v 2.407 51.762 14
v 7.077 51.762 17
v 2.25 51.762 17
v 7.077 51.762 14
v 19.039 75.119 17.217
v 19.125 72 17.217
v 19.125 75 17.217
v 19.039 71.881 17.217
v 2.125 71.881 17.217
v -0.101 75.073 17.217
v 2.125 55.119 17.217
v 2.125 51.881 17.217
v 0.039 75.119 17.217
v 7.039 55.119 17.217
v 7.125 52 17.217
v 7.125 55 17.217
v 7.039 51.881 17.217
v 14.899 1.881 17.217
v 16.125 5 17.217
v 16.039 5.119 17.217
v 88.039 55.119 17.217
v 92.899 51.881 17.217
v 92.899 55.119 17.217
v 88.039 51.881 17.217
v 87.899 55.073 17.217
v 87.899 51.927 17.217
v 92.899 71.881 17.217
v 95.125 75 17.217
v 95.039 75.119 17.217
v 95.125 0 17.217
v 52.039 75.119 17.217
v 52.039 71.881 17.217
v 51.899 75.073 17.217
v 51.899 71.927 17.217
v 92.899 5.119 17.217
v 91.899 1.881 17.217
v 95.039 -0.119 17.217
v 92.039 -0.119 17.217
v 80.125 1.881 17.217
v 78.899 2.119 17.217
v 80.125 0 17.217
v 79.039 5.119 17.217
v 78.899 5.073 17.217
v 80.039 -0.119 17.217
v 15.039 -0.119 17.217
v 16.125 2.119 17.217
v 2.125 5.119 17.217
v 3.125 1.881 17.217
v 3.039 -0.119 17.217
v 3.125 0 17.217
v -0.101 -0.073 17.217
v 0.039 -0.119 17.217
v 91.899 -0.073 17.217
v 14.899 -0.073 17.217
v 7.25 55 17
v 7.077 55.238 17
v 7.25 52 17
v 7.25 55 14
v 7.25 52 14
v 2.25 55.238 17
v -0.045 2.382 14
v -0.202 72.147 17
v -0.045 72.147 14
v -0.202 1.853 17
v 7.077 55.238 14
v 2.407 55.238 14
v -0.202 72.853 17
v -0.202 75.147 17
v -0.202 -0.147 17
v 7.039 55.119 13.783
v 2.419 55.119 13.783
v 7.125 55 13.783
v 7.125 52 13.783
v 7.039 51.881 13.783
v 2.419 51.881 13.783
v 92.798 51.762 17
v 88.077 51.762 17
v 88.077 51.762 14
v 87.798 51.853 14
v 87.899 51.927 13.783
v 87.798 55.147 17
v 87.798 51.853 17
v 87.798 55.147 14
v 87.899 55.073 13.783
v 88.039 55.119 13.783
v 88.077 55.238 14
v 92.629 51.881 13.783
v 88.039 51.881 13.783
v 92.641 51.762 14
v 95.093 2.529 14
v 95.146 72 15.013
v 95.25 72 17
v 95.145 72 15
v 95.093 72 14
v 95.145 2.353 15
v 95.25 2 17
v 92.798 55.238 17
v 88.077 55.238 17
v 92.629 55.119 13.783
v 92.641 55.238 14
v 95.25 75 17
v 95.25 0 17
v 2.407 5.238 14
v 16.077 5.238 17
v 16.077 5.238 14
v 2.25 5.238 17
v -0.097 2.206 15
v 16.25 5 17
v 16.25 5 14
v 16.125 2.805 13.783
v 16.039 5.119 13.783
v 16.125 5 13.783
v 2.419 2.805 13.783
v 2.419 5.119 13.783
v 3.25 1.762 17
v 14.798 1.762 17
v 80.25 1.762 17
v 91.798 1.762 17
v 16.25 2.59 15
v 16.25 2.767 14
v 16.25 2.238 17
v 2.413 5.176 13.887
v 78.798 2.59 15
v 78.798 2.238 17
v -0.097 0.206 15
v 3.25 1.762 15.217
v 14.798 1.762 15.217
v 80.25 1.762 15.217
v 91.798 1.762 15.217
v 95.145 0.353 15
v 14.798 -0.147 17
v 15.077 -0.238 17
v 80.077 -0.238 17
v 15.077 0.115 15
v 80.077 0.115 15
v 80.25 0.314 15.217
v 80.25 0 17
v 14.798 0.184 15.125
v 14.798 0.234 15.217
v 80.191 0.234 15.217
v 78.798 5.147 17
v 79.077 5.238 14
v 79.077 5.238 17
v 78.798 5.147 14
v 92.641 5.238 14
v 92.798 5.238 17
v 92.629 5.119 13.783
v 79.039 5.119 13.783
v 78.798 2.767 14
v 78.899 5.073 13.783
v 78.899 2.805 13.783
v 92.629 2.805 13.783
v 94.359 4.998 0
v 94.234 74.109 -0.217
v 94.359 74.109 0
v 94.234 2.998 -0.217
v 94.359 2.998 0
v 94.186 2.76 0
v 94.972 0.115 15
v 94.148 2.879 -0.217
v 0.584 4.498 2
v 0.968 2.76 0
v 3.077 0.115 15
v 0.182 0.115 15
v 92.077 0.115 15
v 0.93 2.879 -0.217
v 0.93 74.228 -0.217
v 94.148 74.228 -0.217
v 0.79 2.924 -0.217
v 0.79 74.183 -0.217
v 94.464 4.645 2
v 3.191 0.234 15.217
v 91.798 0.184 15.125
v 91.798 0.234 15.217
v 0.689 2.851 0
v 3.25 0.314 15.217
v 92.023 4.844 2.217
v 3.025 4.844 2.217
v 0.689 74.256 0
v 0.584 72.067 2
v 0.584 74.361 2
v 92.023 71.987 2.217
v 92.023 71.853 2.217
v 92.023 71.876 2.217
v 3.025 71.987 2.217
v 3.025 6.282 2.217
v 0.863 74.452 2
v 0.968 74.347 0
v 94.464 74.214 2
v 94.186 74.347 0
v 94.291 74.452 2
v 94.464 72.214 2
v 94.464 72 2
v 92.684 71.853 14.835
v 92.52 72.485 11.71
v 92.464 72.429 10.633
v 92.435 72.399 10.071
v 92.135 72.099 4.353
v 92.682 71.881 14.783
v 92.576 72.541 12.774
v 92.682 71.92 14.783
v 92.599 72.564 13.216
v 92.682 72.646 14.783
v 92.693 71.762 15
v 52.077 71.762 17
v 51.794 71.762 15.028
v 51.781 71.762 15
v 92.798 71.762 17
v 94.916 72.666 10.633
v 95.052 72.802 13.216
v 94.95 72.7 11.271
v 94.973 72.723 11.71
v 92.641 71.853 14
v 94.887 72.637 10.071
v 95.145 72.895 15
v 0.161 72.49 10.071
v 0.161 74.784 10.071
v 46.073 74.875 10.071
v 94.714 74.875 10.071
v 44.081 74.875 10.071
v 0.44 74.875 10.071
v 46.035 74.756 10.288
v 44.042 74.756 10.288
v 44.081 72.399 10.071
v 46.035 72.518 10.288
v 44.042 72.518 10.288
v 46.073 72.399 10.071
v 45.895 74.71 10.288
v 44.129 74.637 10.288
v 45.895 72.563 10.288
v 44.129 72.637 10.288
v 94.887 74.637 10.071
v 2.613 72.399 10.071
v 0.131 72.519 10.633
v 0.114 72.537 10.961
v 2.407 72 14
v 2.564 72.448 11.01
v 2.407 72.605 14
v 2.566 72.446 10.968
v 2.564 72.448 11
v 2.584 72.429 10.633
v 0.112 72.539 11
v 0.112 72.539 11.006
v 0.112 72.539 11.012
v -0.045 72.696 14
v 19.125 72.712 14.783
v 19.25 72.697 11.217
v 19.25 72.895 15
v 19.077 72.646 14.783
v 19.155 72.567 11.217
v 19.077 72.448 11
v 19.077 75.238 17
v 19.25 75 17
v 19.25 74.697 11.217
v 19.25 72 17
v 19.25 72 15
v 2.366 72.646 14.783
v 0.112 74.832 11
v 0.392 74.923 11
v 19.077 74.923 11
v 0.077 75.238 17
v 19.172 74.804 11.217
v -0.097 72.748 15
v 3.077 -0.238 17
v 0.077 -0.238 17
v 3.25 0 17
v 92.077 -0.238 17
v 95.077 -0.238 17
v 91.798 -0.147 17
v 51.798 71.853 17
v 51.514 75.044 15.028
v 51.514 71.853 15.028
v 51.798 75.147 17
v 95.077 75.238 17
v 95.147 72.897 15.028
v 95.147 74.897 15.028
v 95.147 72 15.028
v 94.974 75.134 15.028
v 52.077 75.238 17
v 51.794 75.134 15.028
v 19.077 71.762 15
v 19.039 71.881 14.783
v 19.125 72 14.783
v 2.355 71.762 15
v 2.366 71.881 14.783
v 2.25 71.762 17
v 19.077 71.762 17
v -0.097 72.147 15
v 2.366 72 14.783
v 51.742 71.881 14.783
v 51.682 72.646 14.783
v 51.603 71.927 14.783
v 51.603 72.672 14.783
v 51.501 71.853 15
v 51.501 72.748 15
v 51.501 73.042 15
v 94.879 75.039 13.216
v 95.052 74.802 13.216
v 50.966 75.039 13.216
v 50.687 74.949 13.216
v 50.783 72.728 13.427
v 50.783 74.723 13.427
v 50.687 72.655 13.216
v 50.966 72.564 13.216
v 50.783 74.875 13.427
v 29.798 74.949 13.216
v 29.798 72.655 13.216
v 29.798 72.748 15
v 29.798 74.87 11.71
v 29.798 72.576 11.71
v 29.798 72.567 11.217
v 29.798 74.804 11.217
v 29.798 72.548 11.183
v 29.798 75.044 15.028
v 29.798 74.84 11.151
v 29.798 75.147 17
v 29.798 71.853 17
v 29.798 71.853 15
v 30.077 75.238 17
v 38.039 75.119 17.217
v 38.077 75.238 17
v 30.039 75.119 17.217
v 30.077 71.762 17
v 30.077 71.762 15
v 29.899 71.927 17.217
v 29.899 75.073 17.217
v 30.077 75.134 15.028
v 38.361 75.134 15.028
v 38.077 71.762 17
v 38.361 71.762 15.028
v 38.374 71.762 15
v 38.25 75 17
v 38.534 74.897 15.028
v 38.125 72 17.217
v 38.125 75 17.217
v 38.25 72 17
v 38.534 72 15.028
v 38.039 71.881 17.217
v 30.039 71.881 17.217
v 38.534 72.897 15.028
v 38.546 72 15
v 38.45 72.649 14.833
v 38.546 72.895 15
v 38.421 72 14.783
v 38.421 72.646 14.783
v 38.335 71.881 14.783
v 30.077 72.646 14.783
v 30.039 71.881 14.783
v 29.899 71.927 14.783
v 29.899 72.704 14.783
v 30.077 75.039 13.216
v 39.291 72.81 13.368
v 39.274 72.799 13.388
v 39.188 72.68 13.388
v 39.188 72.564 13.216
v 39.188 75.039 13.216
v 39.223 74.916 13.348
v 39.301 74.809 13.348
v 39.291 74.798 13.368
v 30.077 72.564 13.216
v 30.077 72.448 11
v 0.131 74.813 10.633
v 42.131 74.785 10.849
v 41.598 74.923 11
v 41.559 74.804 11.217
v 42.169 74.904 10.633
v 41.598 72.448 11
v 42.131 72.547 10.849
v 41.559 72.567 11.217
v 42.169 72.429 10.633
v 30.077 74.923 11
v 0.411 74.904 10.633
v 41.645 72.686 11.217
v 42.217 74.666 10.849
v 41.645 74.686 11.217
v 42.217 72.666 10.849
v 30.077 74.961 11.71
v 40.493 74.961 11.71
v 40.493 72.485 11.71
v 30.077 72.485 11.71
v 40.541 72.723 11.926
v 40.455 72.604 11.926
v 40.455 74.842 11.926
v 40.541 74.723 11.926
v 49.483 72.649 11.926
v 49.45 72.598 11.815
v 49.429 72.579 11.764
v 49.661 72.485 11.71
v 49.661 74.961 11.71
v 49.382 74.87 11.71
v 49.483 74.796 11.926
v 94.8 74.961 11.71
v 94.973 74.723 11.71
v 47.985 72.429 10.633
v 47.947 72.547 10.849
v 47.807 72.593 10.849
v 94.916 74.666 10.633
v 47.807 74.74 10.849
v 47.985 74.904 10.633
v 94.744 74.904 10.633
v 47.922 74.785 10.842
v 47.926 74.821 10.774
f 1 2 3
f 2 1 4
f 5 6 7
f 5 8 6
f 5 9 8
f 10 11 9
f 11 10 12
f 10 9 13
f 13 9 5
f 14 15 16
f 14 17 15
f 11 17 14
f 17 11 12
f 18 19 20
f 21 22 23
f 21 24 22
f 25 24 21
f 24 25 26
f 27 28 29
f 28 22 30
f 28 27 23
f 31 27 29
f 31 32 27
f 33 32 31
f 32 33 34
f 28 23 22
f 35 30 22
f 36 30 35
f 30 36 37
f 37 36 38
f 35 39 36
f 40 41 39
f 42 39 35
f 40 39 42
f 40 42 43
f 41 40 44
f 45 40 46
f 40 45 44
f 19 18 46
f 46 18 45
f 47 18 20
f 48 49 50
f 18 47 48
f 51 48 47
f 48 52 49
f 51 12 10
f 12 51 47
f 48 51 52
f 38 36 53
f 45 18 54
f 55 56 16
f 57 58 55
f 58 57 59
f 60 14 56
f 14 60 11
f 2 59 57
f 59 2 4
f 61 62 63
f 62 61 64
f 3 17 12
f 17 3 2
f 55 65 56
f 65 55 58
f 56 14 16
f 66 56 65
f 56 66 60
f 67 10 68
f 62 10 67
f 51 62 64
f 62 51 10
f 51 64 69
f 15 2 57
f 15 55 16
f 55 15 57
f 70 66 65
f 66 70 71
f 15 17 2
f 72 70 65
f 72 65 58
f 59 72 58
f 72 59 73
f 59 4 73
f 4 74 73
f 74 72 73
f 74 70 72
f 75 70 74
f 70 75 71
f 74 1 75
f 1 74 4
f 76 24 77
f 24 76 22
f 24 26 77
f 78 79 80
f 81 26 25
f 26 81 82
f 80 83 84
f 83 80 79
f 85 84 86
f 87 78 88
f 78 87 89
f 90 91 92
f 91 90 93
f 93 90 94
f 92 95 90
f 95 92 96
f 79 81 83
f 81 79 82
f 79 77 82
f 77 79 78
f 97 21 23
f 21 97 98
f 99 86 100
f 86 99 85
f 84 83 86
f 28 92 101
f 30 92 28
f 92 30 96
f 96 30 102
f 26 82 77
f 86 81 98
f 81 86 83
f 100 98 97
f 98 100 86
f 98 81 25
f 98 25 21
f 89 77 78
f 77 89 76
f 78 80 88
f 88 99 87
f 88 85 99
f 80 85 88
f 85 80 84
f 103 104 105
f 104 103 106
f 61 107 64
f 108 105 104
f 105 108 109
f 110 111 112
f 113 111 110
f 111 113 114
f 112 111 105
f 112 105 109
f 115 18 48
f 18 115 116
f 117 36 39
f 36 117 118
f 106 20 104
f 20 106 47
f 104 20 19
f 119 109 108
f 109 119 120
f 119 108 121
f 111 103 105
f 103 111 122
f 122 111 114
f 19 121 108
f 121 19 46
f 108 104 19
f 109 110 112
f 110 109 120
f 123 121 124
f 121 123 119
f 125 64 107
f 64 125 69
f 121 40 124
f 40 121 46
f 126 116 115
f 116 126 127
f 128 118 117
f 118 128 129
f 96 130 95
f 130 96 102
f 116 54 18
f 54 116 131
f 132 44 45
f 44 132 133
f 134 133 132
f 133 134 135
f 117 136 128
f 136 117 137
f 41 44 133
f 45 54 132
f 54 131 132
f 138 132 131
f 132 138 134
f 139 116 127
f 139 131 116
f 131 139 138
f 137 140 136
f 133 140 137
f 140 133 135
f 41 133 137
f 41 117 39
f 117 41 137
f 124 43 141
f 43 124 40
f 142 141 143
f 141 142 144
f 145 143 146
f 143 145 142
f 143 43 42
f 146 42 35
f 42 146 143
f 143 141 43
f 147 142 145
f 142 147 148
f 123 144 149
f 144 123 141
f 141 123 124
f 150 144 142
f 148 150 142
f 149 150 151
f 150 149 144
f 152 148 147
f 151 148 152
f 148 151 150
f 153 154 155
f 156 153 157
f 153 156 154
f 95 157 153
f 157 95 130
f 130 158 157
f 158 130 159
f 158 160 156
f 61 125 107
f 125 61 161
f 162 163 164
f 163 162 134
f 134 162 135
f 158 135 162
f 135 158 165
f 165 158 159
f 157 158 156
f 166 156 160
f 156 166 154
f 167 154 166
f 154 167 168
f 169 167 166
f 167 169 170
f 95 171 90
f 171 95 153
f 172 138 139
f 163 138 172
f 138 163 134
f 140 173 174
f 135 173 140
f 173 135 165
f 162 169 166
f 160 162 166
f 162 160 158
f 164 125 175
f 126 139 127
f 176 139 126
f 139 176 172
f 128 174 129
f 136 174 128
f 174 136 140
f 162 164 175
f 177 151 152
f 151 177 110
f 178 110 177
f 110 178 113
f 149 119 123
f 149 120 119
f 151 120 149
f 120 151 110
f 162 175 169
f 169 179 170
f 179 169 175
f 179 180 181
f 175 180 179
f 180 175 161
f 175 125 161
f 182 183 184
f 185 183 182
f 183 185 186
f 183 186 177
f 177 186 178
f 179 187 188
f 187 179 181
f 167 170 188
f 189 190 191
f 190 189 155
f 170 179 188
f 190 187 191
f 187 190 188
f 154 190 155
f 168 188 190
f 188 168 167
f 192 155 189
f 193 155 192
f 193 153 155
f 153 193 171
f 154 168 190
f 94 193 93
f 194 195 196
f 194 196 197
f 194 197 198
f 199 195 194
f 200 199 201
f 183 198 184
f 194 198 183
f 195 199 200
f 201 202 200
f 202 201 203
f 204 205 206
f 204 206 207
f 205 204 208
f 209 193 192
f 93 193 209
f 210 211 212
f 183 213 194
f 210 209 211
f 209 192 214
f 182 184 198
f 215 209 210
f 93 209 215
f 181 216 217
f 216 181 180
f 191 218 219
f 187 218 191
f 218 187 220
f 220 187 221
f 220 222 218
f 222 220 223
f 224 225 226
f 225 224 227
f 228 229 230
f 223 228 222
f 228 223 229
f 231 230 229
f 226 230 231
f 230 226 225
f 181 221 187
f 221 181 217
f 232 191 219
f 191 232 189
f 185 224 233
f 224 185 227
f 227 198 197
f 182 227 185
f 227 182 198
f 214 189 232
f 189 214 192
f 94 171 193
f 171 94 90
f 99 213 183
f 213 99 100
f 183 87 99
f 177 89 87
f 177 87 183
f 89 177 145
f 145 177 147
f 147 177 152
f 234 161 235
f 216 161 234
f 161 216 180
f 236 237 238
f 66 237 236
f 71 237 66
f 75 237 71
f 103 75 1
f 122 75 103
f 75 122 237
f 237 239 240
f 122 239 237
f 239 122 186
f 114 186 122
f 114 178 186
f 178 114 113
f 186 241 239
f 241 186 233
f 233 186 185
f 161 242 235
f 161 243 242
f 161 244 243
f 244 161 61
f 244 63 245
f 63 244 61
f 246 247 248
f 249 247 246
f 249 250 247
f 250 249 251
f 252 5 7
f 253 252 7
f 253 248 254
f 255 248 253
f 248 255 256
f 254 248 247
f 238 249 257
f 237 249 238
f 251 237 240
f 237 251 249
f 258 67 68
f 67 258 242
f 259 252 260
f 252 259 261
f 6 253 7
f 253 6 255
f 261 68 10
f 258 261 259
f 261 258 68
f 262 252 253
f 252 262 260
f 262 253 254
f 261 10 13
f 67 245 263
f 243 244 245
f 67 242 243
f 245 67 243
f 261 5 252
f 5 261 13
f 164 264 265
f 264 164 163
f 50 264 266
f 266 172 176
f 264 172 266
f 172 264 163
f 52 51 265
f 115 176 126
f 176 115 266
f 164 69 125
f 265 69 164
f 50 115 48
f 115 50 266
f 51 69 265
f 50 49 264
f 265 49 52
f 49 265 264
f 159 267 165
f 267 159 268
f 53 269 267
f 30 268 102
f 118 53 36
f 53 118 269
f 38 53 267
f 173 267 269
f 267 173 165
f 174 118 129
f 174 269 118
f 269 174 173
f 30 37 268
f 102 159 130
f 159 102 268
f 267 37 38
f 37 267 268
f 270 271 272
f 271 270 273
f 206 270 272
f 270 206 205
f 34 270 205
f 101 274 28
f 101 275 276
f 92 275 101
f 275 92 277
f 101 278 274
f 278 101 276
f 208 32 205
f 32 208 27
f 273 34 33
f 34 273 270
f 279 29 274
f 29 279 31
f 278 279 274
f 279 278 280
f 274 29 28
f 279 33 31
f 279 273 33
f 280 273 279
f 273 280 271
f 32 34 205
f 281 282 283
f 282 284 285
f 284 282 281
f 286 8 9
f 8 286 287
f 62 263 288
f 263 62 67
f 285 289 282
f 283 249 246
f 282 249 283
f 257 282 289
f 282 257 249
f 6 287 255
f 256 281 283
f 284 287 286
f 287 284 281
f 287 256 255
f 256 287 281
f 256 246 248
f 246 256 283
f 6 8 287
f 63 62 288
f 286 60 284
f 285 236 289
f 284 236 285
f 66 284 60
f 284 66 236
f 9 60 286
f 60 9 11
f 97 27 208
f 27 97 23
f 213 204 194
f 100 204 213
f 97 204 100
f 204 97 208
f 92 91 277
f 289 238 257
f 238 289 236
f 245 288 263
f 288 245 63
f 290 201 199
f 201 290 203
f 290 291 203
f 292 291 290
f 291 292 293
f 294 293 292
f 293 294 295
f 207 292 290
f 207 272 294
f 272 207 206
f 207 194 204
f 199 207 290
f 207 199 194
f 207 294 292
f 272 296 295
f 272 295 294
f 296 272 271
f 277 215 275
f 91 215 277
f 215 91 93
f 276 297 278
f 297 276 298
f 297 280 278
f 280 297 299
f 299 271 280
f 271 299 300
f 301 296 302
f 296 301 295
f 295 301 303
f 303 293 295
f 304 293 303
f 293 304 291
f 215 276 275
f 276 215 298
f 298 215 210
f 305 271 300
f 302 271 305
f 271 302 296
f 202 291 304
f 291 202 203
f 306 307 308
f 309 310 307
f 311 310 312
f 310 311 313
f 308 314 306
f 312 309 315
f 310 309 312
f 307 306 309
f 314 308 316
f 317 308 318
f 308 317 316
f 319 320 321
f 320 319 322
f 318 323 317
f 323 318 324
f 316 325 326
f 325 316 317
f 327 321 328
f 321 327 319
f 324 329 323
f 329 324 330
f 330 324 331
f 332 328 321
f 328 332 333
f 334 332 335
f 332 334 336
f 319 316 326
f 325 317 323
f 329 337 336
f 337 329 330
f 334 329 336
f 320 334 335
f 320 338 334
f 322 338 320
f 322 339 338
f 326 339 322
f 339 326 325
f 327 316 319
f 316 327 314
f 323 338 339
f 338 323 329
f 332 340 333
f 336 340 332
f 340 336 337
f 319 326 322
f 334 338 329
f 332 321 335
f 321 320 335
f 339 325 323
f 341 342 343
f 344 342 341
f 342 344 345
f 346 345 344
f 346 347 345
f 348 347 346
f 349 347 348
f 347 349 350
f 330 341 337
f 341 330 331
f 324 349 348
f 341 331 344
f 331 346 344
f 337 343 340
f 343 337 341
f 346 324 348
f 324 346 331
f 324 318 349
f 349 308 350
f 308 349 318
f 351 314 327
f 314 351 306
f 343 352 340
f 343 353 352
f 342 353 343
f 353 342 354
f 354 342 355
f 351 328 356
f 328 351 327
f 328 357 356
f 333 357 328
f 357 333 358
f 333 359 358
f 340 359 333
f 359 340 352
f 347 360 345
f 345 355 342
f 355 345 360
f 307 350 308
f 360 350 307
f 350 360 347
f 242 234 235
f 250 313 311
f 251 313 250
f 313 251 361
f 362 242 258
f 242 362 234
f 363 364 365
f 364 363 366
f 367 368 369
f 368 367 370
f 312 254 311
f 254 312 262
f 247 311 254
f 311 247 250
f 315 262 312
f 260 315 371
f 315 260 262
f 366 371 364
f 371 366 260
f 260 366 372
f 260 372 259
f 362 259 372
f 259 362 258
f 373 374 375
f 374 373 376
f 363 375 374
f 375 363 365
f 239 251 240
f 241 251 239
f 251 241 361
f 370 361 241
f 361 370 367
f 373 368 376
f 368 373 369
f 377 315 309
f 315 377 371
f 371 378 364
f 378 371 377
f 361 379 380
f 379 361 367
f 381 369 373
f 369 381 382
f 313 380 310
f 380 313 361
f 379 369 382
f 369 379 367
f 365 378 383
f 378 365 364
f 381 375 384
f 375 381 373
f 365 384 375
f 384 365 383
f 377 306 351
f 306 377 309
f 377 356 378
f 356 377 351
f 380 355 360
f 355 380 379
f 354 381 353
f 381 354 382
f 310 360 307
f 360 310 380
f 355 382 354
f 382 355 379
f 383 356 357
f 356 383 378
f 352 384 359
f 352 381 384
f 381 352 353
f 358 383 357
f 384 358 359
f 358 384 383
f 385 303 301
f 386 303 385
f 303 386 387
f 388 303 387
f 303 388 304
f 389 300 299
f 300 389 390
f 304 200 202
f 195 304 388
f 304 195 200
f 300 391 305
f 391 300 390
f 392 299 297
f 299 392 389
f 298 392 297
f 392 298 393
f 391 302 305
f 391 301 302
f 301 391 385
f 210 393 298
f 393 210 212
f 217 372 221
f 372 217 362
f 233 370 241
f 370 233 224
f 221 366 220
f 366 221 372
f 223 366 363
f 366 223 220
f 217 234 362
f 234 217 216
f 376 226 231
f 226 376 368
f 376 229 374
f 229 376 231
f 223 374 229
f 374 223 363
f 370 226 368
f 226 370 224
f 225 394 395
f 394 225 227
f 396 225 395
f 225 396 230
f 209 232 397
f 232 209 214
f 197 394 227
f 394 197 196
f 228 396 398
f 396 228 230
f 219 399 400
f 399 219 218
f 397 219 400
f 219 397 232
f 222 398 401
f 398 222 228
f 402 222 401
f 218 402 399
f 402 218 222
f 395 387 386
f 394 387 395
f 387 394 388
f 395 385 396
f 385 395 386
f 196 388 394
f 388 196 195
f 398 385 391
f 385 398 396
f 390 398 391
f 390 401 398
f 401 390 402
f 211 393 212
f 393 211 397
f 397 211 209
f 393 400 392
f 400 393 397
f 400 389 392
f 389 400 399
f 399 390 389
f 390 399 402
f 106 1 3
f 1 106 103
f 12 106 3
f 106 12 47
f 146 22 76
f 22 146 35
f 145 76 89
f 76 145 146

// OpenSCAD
W=95;
D=75;
H=17;

// OpenSCAD trigonometry is in degrees
alpha = 10;     // 面 [0,1,9,8] 与垂直之间的夹角度数
beta = 3;       // 其它三个接近垂直的面与垂直之间的夹角度数

module cover() {

/*

  0-__---------------__-1   
  |4__---------------__5|     8---------------------9
  ||                   ||     |12-----------------13|
  ||                   ||     ||                   ||
  ||>                 <||     ||                   ||
  |7-------------------6|     |15-----------------14|
  3----^^--^^^----------2     11-------------------10
         Bottom                        Top

*/

oa = H*tan(alpha); // Alpha角到顶部的偏移
ob = H*tan(beta);  // Beta角到顶部的偏移

oa2 = (H-2)*tan(alpha); // 顶部里面的偏移
ob2 = (H-2)*tan(beta);

points = [ [0,D,0], // 0
           [W,D,0], // 1
           [W,0,0], // 2
           [0,0,0],  // 3
           [2,D-2,0], // 4
           [W-2,D-2,0], // 5
           [W-2,2,0],   // 6
           [2,2,0],     // 7
           [ob,D-oa,H], // 8
           [W-ob,D-oa,H],   // 9
           [W-ob,ob,H],  // 10
           [ob,ob,H],    // 11
           [2+ob2,D-2-oa2,H-2],  // 12
           [W-2-ob2,D-2-oa2,H-2],         // 13
           [W-2-ob2,2+ob2,H-2],     // 14
           [2+ob2,2+ob2,H-2]];     // 15

faces = [  [8,9,10,11],      // top-out
           [12,15,14,13],       // top-in
           [0,3,7,4],   // bottom-left
           [0,4,5,1],   // bottom-top
           [1,5,6,2],   // bottom-right
           [2,6,7,3],   // bottom-bottom
           [0,8,11,3],  // leftside-out
           [4,7,15,12], // leftside-in
           [0,1,9,8],   // topside-out
           [4,12,13,5], // topside-in
           [1,2,10,9],  // rightside-out
           [5,13,14,6], // rightside-in
           [3,11,10,2], // bottomside-out
           [7,6,14,15]];

difference() {
    union() {
        polyhedron(points, faces, 10);
        translate([1,2,0]) cube([W-2,1,2]);
    }
    
    translate([19,0,-5]) cube(11);
    translate([45,0,0]) rotate([-90,0,0]) cylinder(h=4,r=7);
    translate([3,D-3,0]) cube([12,4,2]);
    translate([W-3-12,D-3,0]) cube([12,4,2]);
}

translate([1,20,0]) cube([6,3,3]);  // 左侧下方卡子

translate([W-1-6,20,0]) cube([6,3,3]);  // 右侧下方卡子

translate([1,D-2-3,0]) cube([15,3,3]);    // 左侧上方卡子

translate([W-1-15,D-2-3,0]) cube([15,3,3]);    // 右侧上方卡子

}

minkowski()
{
    translate([0,D,H]) rotate([180,0,0]) cover();
    sphere(.25);
}
